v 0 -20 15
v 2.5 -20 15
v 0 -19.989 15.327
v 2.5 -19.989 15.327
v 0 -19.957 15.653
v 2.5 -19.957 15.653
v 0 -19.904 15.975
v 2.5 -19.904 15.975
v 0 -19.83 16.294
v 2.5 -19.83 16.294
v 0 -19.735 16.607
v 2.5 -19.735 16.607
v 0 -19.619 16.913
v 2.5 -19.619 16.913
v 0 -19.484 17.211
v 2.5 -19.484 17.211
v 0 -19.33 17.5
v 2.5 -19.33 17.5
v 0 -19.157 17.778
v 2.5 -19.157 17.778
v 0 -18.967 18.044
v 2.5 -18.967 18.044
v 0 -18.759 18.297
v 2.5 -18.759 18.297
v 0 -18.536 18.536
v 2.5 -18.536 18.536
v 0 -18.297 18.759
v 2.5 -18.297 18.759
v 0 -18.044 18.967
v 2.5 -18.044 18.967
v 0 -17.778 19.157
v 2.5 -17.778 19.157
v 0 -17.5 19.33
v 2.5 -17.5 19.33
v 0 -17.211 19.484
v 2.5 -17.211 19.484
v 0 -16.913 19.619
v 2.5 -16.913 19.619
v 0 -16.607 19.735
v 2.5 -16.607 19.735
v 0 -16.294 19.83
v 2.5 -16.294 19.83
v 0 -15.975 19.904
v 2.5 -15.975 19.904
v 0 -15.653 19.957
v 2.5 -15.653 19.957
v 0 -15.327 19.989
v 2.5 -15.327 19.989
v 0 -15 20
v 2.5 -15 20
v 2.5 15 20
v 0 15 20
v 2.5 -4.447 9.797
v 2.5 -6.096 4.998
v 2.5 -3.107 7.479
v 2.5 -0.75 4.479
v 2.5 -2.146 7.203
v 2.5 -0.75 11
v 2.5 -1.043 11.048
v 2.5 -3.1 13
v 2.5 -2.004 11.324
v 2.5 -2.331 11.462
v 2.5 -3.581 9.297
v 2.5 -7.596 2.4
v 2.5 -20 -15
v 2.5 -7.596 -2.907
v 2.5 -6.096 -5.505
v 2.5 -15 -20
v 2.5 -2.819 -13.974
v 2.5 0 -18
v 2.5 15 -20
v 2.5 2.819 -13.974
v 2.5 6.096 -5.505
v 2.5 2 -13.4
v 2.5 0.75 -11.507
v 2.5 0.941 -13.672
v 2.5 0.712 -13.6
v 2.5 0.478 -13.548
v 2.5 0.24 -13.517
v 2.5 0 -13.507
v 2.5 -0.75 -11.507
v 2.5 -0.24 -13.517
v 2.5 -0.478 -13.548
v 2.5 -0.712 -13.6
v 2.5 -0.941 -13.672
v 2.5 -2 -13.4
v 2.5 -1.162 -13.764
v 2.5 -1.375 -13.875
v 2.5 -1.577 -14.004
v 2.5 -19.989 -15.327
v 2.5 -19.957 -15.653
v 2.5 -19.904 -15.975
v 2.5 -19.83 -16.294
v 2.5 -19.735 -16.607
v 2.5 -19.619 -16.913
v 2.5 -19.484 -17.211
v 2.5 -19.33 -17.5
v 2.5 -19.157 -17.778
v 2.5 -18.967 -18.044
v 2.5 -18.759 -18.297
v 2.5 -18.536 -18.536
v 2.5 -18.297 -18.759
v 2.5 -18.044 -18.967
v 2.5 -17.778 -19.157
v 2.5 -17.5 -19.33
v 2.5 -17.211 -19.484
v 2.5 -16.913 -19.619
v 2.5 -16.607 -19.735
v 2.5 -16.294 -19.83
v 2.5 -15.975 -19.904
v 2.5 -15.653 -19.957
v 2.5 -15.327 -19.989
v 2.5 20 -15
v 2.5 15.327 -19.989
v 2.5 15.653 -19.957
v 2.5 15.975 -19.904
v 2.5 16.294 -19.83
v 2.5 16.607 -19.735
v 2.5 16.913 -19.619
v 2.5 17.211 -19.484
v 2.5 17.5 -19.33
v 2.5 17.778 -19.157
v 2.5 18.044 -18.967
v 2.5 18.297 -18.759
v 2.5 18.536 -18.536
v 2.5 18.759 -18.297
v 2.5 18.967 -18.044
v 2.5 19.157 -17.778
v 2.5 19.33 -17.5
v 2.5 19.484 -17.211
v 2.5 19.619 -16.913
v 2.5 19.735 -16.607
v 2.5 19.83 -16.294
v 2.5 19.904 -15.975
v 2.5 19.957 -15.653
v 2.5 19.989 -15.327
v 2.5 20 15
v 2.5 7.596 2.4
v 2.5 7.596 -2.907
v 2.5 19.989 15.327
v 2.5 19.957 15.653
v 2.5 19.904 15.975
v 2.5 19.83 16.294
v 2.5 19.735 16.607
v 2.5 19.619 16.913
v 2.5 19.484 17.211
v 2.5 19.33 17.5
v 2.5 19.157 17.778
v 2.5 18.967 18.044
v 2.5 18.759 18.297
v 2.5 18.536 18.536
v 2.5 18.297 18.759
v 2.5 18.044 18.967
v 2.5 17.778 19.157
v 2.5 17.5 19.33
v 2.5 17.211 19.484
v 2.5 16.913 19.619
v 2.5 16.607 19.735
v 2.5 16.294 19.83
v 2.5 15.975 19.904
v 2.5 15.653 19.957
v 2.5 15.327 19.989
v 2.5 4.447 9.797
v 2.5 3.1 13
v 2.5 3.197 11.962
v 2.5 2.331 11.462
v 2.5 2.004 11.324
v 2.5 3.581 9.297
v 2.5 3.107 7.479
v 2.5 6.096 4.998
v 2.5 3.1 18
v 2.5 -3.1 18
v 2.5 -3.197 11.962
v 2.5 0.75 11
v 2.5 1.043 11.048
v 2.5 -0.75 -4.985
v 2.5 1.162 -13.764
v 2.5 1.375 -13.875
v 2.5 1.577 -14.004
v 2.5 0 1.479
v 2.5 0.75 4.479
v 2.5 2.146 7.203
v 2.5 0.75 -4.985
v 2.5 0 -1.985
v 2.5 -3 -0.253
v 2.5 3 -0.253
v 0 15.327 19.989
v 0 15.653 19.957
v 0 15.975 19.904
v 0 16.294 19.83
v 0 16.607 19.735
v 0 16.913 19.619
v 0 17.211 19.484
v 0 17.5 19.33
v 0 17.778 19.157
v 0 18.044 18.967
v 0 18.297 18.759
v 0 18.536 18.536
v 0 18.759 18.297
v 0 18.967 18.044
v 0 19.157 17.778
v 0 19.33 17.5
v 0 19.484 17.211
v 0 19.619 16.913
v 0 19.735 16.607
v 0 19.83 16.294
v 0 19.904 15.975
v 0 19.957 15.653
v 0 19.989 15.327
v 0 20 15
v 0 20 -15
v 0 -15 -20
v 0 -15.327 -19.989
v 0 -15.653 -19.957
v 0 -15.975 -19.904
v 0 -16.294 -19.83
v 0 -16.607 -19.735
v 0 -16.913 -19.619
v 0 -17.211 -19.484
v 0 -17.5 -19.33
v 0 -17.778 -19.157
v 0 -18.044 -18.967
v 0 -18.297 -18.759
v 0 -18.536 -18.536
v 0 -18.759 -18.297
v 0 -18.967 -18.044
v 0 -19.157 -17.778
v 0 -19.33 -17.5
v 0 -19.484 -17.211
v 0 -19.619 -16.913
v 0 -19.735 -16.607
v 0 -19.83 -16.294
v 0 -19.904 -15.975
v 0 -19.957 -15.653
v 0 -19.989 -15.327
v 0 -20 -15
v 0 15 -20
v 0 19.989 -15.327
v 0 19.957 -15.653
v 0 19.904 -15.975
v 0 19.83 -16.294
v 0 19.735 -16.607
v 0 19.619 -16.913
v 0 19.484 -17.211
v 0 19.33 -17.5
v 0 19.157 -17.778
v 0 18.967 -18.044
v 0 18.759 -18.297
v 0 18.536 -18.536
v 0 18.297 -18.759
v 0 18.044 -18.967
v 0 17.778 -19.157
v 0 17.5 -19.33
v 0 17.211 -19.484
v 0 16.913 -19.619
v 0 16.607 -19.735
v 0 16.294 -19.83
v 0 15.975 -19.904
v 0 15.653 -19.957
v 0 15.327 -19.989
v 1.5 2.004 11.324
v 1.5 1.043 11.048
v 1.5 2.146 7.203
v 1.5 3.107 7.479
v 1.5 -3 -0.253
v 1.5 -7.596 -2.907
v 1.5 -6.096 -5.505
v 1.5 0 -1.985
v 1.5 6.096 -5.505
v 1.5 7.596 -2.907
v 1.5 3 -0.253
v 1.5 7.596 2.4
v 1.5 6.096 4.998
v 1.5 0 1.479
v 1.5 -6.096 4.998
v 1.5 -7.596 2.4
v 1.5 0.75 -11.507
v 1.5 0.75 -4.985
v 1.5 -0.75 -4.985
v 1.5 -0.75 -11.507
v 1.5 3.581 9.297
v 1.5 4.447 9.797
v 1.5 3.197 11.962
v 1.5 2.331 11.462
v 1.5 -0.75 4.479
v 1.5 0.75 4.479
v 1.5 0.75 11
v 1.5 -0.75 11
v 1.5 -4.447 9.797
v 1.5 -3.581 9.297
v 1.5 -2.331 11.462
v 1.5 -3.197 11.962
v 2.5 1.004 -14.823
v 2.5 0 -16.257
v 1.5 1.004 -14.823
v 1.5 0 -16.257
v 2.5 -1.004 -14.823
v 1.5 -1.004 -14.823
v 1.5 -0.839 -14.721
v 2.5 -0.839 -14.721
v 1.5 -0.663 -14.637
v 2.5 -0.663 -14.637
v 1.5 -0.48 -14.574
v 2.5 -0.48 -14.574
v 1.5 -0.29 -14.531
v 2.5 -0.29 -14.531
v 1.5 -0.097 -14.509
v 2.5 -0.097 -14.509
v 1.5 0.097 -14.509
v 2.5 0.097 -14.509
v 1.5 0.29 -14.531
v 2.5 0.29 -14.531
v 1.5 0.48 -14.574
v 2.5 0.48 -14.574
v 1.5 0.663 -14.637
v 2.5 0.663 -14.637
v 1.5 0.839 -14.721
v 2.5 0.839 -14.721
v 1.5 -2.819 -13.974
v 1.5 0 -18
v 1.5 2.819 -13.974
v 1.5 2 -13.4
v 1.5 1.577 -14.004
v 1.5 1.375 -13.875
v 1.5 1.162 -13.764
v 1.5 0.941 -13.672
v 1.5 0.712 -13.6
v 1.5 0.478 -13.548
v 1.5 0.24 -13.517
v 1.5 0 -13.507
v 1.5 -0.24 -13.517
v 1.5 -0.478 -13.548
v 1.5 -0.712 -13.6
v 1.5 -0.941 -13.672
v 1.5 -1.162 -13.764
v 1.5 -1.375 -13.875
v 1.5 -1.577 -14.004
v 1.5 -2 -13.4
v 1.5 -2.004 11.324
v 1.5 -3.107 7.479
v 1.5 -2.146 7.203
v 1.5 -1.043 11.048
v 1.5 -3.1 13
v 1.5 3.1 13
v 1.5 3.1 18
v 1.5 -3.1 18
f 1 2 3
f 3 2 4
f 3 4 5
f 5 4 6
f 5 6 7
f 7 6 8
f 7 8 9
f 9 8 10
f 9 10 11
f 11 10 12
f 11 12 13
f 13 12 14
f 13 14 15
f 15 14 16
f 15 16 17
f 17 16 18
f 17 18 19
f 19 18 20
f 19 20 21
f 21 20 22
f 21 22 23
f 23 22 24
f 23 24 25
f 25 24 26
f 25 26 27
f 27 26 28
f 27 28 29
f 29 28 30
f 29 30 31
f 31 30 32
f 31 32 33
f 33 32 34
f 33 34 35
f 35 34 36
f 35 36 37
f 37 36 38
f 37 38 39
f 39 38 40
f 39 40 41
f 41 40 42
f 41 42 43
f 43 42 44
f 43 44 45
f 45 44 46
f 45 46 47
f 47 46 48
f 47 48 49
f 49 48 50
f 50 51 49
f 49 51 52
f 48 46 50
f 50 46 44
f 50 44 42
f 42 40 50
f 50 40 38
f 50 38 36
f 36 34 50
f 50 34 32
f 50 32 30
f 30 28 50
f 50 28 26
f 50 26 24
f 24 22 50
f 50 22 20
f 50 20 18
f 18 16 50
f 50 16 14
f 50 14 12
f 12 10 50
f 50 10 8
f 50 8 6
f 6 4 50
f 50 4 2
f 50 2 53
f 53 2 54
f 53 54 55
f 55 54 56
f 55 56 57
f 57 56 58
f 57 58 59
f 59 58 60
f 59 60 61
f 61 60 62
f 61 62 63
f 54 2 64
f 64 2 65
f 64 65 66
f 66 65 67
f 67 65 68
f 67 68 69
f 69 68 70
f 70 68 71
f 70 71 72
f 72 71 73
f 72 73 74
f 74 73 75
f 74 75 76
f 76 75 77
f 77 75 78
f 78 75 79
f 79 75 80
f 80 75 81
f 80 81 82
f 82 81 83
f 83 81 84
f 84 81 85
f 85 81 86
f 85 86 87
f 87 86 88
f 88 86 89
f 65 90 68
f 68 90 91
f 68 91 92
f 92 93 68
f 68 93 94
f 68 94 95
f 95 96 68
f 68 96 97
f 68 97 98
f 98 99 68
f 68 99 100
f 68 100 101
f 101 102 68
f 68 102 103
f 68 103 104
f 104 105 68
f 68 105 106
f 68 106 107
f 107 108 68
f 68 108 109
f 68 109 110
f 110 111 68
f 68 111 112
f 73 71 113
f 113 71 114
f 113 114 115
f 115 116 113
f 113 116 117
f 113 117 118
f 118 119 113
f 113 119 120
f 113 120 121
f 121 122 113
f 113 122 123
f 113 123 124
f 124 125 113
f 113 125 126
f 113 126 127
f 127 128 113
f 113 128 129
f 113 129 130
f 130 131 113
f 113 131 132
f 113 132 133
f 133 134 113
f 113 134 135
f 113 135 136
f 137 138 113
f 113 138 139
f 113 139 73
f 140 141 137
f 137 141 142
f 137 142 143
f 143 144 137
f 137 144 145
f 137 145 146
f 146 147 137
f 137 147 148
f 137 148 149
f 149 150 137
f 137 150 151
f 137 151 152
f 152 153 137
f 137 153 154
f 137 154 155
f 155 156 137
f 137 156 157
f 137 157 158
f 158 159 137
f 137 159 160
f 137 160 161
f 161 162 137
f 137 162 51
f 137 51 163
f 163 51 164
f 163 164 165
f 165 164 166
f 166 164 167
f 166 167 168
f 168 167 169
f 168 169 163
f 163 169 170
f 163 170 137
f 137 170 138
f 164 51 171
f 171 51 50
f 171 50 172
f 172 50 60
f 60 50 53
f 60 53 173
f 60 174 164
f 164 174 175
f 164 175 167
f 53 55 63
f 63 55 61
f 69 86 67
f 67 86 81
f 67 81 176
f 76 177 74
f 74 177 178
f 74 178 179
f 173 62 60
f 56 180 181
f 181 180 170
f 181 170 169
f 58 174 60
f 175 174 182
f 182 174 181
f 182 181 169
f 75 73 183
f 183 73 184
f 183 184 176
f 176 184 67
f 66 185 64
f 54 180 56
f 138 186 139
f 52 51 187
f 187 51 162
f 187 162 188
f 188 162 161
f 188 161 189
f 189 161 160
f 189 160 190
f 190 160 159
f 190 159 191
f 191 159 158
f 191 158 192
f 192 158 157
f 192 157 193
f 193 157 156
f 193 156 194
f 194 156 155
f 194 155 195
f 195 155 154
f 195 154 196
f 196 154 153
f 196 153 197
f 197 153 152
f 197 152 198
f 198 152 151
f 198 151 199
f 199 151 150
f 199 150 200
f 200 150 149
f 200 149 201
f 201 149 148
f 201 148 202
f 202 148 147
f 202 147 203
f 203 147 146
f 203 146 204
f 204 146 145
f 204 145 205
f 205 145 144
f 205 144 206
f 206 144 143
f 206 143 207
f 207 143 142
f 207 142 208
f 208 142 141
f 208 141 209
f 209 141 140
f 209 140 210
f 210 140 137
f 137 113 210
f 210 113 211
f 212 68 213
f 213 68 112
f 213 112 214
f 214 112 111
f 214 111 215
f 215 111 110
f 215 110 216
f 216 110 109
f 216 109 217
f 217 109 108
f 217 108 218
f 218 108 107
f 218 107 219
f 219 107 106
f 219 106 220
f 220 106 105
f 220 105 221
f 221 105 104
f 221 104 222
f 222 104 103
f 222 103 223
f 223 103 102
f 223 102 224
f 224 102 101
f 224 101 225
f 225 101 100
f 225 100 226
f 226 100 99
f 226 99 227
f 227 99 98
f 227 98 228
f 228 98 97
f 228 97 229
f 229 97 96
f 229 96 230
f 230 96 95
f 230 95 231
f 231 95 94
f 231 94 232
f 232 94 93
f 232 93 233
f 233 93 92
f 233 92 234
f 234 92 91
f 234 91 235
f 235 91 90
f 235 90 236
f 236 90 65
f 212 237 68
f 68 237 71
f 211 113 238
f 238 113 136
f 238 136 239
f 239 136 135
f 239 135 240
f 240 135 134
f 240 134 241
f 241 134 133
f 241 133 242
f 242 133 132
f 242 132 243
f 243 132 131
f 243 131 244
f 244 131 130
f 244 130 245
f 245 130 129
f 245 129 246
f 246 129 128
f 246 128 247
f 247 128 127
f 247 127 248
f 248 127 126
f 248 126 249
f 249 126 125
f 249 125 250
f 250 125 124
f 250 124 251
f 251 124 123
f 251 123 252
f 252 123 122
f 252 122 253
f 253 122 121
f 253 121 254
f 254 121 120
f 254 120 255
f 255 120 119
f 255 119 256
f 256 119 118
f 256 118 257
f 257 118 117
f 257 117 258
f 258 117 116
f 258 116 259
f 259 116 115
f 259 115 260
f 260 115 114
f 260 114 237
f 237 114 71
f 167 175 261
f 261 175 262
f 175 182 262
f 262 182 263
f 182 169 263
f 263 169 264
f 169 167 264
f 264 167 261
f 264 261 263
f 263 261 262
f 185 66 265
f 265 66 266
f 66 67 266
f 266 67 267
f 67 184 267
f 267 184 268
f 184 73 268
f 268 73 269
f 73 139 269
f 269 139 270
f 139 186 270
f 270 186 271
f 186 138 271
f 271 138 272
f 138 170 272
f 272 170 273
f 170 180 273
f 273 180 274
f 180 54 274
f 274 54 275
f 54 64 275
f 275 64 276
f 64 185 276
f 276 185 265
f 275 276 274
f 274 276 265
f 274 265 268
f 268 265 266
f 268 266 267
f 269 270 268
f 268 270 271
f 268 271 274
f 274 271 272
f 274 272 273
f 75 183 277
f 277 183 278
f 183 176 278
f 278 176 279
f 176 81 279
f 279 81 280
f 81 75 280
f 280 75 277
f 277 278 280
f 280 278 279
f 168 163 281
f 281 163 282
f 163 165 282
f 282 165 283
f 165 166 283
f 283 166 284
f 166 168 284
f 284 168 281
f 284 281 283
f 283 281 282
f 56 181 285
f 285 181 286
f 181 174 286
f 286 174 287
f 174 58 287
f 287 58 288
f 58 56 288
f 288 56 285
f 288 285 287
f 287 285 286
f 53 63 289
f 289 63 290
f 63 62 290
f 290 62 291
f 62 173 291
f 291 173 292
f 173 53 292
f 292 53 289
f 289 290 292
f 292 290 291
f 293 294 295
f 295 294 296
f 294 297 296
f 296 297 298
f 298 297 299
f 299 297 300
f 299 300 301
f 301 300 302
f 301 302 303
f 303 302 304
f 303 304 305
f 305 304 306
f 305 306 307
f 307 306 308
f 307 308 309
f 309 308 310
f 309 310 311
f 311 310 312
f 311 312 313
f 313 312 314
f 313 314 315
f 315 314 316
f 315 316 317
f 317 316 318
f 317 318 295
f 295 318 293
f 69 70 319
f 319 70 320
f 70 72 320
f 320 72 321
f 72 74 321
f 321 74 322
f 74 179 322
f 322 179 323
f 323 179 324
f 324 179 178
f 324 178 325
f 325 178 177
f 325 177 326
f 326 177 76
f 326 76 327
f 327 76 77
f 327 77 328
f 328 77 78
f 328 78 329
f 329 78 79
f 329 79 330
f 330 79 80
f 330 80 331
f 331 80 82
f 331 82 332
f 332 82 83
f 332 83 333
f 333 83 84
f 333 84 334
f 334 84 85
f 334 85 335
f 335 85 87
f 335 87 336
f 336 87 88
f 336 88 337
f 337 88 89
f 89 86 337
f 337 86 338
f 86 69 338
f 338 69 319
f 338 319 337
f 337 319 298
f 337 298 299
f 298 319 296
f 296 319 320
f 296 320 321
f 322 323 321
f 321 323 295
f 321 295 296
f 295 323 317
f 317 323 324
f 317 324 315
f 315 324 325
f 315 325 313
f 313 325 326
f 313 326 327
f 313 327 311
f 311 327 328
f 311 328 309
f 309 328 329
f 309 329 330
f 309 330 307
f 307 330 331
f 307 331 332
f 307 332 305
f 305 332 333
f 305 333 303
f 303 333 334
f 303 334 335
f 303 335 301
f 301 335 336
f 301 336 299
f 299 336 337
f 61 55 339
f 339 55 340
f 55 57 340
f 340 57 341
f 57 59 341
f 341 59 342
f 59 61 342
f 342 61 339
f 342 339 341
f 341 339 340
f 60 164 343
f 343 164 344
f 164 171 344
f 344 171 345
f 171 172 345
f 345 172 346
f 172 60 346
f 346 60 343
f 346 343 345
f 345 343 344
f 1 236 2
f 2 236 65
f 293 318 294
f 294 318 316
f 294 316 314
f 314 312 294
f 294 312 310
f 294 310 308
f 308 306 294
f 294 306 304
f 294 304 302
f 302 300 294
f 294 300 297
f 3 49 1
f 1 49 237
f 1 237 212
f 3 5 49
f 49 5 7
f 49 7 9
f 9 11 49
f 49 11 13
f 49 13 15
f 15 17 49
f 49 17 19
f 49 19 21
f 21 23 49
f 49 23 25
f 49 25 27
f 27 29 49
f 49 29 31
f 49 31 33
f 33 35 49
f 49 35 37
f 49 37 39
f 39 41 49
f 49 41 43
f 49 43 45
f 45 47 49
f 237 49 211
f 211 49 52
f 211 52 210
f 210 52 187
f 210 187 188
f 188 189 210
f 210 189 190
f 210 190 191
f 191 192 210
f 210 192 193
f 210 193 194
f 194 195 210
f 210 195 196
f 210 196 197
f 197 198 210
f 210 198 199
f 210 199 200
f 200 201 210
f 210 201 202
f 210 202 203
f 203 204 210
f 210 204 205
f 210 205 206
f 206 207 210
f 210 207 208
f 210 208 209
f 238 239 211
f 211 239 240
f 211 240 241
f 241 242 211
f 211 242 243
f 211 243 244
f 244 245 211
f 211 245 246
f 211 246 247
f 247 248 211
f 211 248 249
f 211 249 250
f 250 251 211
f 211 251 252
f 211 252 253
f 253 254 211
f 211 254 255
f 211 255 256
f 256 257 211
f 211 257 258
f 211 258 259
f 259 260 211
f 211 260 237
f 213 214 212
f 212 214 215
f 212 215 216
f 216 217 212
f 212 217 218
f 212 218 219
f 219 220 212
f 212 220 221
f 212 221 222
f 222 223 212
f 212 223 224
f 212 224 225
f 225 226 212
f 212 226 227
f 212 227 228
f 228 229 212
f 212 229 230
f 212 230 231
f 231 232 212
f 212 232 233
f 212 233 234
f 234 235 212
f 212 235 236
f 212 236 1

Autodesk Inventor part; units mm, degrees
ref_plane "YZ Plane" through (0, 0, 0) normal (1, 0, 0) x (0, 1, 0)
ref_plane "XZ Plane" through (0, 0, 0) normal (0, 1, 0) x (-1, 0, 0)
ref_plane "XY Plane" through (0, 0, 0) normal (0, 0, 1) x (1, 0, 0)
sketch "Sketch1" plane through (0, 0, 0) normal (1, 0, 0) x (0, 1, 0)
  line L0 (-20, -20) -> (20, -20)
  line L1 (20, -20) -> (20, 20)
  line L2 (20, 20) -> (-20, 20)
  line L3 (-20, 20) -> (-20, -20)
  line L4 (-20, -20) -> (20, 20) construction
  line L5 (20, -20) -> (-20, 20) construction
  point P0 (0, 0)
  dimension "d1" = 40
  dimension "d2" = 40
extrude "Outline" add sketch "Sketch1" along normal blind 2.5
sketch "Sketch2" plane through (2.5, 0, 0) normal (1, 0, 0) x (0, 0, -1)
  line L0 (20, 20) -> (-20, 20) projected
  line L1 (20, -20) -> (20, 20) projected
  line L2 (-18, 3.1) -> (-13, 3.1)
  line L3 (-13, 3.1) -> (-13, -3.1)
  line L4 (-13, -3.1) -> (-18, -3.1)
  line L5 (-18, -3.1) -> (-18, 3.1)
  line L6 (-11, 0.75) -> (-4.4788, 0.75)
  line L7 (-4.4788, 0.75) -> (-4.4788, -0.75)
  line L8 (-4.4788, -0.75) -> (-11, -0.75)
  line L9 (-11, -0.75) -> (-11, 0.75)
  line L10 (13.9738, 2.8192) -> (18, 0)
  line L11 (18, 0) -> (13.9738, -2.8192)
  line L12 (13.9738, 2.8192) -> (13.4003, 2)
  line L13 (13.4003, 2) -> (16.2566, 0)
  line L14 (16.2566, 0) -> (13.4003, -2)
  line L15 (13.4003, -2) -> (13.9738, -2.8192)
  line L16 (-18, 0) -> (16.2566, 0) construction
  arc A0 (14.0039, 1.5773) -> (14.0039, -1.5773) centre (16.2566, 0) ccw
  arc A1 (14.823, 1.0038) -> (14.823, -1.0038) centre (16.2566, 0) ccw
  line L17 (4.9853, 0.75) -> (11.5066, 0.75)
  line L18 (11.5066, 0.75) -> (11.5066, -0.75)
  line L19 (11.5066, -0.75) -> (4.9853, -0.75)
  line L20 (4.9853, -0.75) -> (4.9853, 0.75)
  line L21 (-11.3236, 2.0044) -> (-11.048, 1.0432)
  line L22 (-11.048, 1.0432) -> (-7.203, 2.1457)
  line L23 (-7.203, 2.1457) -> (-7.4786, 3.107)
  line L24 (-7.4786, 3.107) -> (-11.3236, 2.0044)
  line L25 (-11.048, -1.0432) -> (-7.203, -2.1457)
  line L26 (-7.203, -2.1457) -> (-7.4786, -3.107)
  line L27 (-7.4786, -3.107) -> (-11.3236, -2.0044)
  line L28 (-11.3236, -2.0044) -> (-11.048, -1.0432)
  circle A2 centre (-16.5, 0) radius 5.5509 construction
  line L29 (-11.9623, 3.1972) -> (-11.4623, 2.3312)
  line L30 (-11.4623, 2.3312) -> (-9.2973, 3.5812)
  line L31 (-9.2973, 3.5812) -> (-9.7973, 4.4472)
  line L32 (-9.7973, 4.4472) -> (-11.9623, 3.1972)
  line L33 (-11.4623, -2.3312) -> (-11.9623, -3.1972)
  line L34 (-11.9623, -3.1972) -> (-9.7973, -4.4472)
  line L35 (-9.7973, -4.4472) -> (-9.2973, -3.5812)
  line L36 (-9.2973, -3.5812) -> (-11.4623, -2.3312)
  line L37 (-4.9984, 6.0961) -> (-2.4003, 7.5961)
  line L38 (-2.4003, 7.5961) -> (5.5049, -6.0961)
  line L39 (5.5049, -6.0961) -> (2.9068, -7.5961)
  line L40 (2.9068, -7.5961) -> (-4.9984, 6.0961)
  line L41 (-4.9984, -6.0961) -> (2.9068, 7.5961)
  line L42 (2.9068, 7.5961) -> (5.5049, 6.0961)
  line L43 (5.5049, 6.0961) -> (-2.4003, -7.5961)
  line L44 (-2.4003, -7.5961) -> (-4.9984, -6.0961)
  line L45 (-4.9984, 7.5961) -> (5.5049, 7.5961) construction
  line L46 (5.5049, 7.5961) -> (5.5049, -7.5961) construction
  line L47 (5.5049, -7.5961) -> (-4.9984, -7.5961) construction
  line L48 (-4.9984, -7.5961) -> (-4.9984, 7.5961) construction
  line L49 (-20, -20) -> (20, -20) projected
  line L50 (-20, 20) -> (-20, -20) projected
  line L51 (-4.9984, 6.0961) -> (-11, 6.0961) construction
  line L52 (5.5049, 6.0961) -> (11.5066, 6.0961) construction
  point P0 (0, 0)
  point P1 (-13, 0)
  point P2 (-11, 0)
  point P3 (13.5066, 0)
  point P4 (-1.0458, 0.75)
  point P5 (1.5523, 0.75)
  point P6 (0.2533, -7.5961)
  point P7 (11.5066, 0)
  point P8 (5.5049, 0)
  point P9 (4.9853, 0)
  point P10 (-1.4788, 0)
  point P11 (0.2533, -3)
  point P12 (1.9853, 0)
  point P13 (0.2533, 3)
  point P14 (20, 0)
  dimension "d12" = 35
  dimension "d13" = 35
  dimension "d14" = 4
  dimension "d15" = 1
  dimension "d16" = 1
  dimension "d17" = 2.75
  dimension "d18" = 1.5
  dimension "d19" = 2
  dimension "d21" = 5
  dimension "d22" = 2
  dimension "d23" = 1
  dimension "d24" = 1
  dimension "d25" = 3.5
  dimension "d26" = 16
  dimension "d27" = 16
  dimension "d28" = 4
  dimension "d29" = 2.5
  dimension "d30" = 1
  dimension "d31" = 14
  dimension "d32" = 14
  dimension "d33" = 1
  dimension "d34" = 2.5
  dimension "d35" = 6.2
  dimension "d36" = 60
  dimension "d37" = 60
  dimension "d38" = 3
  dimension "d40" = 2
  dimension "d41" = 2
  dimension "d42" = 3
  dimension "d45" = 15.1922
extrude "Extrusion2" cut sketch "Sketch2" against normal blind 1 contours L2 L3 L4 L5 | L6 L7 L8 L9 | L10 L11 L15 L14 L13 L12 | L13 A1 L14 A0 | L17 L18 L19 L20 | L24 L23 L22 L21 | L25 L26 L27 L28 | L32 L31 L30 L29 | L36 L35 L34 L33 | L37 L38 L41 L40 | L41 L38 L43 L40 | L40 L43 L44 L41 | L41 L42 L43 L38 | L43 L38 L39 L40
sketch "Sketch4" plane through (1.5, 0, 0) normal (1, 0, 0) x (0, 0, -1)
  line L0 (-11.3236, 2.0044) -> (-11.048, 1.0432) projected
  line L1 (-11.048, 1.0432) -> (-7.203, 2.1457) projected
  line L2 (-7.203, 2.1457) -> (-7.4786, 3.107) projected
  line L3 (-7.4786, 3.107) -> (-11.3236, 2.0044) projected
  line L4 (0.2533, -3) -> (2.9068, -7.5961) projected
  line L5 (2.9068, -7.5961) -> (5.5049, -6.0961) projected
  line L6 (5.5049, -6.0961) -> (1.9853, 0) projected
  line L7 (1.9853, 0) -> (5.5049, 6.0961) projected
  line L8 (5.5049, 6.0961) -> (2.9068, 7.5961) projected
  line L9 (2.9068, 7.5961) -> (0.2533, 3) projected
  line L10 (0.2533, 3) -> (-2.4003, 7.5961) projected
  line L11 (-2.4003, 7.5961) -> (-4.9984, 6.0961) projected
  line L12 (-4.9984, 6.0961) -> (-1.4788, 0) projected
  line L13 (-1.4788, 0) -> (-4.9984, -6.0961) projected
  line L14 (-4.9984, -6.0961) -> (-2.4003, -7.5961) projected
  line L15 (-2.4003, -7.5961) -> (0.2533, -3) projected
  line L16 (11.5066, 0.75) -> (4.9853, 0.75) projected
  line L17 (4.9853, 0.75) -> (4.9853, -0.75) projected
  line L18 (4.9853, -0.75) -> (11.5066, -0.75) projected
  line L19 (11.5066, -0.75) -> (11.5066, 0.75) projected
  line L20 (-9.2973, 3.5812) -> (-9.7973, 4.4472) projected
  line L21 (-9.7973, 4.4472) -> (-11.9623, 3.1972) projected
  line L22 (-11.9623, 3.1972) -> (-11.4623, 2.3312) projected
  line L23 (-11.4623, 2.3312) -> (-9.2973, 3.5812) projected
  line L24 (-4.4788, -0.75) -> (-4.4788, 0.75) projected
  line L25 (-4.4788, 0.75) -> (-11, 0.75) projected
  line L26 (-11, 0.75) -> (-11, -0.75) projected
  line L27 (-11, -0.75) -> (-4.4788, -0.75) projected
  line L28 (-9.7973, -4.4472) -> (-9.2973, -3.5812) projected
  line L29 (-9.2973, -3.5812) -> (-11.4623, -2.3312) projected
  line L30 (-11.4623, -2.3312) -> (-11.9623, -3.1972) projected
  line L31 (-11.9623, -3.1972) -> (-9.7973, -4.4472) projected
  line L32 (14.823, 1.0038) -> (16.2566, 0) projected
  line L33 (16.2566, 0) -> (14.823, -1.0038) projected
  arc A0 (14.823, 1.0038) -> (14.823, -1.0038) centre (16.2566, 0) ccw projected
  line L34 (13.9738, -2.8192) -> (18, 0) projected
  line L35 (18, 0) -> (13.9738, 2.8192) projected
  line L36 (13.9738, 2.8192) -> (13.4003, 2) projected
  line L37 (13.4003, 2) -> (14.0039, 1.5773) projected
  arc A1 (14.0039, 1.5773) -> (14.0039, -1.5773) centre (16.2566, 0) ccw projected
  line L38 (14.0039, -1.5773) -> (13.4003, -2) projected
  line L39 (13.4003, -2) -> (13.9738, -2.8192) projected
  line L40 (-11.3236, -2.0044) -> (-7.4786, -3.107) projected
  line L41 (-7.4786, -3.107) -> (-7.203, -2.1457) projected
  line L42 (-7.203, -2.1457) -> (-11.048, -1.0432) projected
  line L43 (-11.048, -1.0432) -> (-11.3236, -2.0044) projected
  line L44 (-13, -3.1) -> (-13, 3.1) projected
  line L45 (-13, 3.1) -> (-18, 3.1) projected
  line L46 (-18, 3.1) -> (-18, -3.1) projected
  line L47 (-18, -3.1) -> (-13, -3.1) projected
  line L48 (20, 20) -> (20, -20) projected
  line L49 (20, -20) -> (-20, -20) projected
  line L50 (-20, -20) -> (-20, 20) projected
  line L51 (-20, 20) -> (20, 20) projected
  point P0 (0, 0)
fillet "Fillet1" radius 5 4 edges at (1.25, 20, -20) (1.25, -20, -20) (1.25, 20, 20) (1.25, -20, 20)
sketch "Sketch5" plane through (2.5, 0, 0) normal (1, 0, 0) x (0, 0, -1)
  arc A0 (-20, -15) -> (-15, -20) centre (-15, -15) ccw projected
  line L0 (-20, -15) -> (-20, 15) projected
  arc A1 (-15, 20) -> (-20, 15) centre (-15, 15) ccw projected
  line L1 (-15, 20) -> (15, 20) projected
  arc A2 (20, 15) -> (15, 20) centre (15, 15) ccw projected
  line L2 (20, 15) -> (20, -15) projected
  arc A3 (15, -20) -> (20, -15) centre (15, -15) ccw projected
  line L3 (15, -20) -> (-15, -20) projected
  line L4 (-13, -3.1) -> (-13, 3.1) projected
  line L5 (-13, 3.1) -> (-18, 3.1) projected
  line L6 (-18, 3.1) -> (-18, -3.1) projected
  line L7 (-18, -3.1) -> (-13, -3.1) projected
  line L8 (-11.3236, -2.0044) -> (-7.4786, -3.107) projected
  line L9 (-7.4786, -3.107) -> (-7.203, -2.1457) projected
  line L10 (-7.203, -2.1457) -> (-11.048, -1.0432) projected
  line L11 (-11.048, -1.0432) -> (-11.3236, -2.0044) projected
  line L12 (13.9738, -2.8192) -> (18, 0) projected
  line L13 (18, 0) -> (13.9738, 2.8192) projected
  line L14 (13.9738, 2.8192) -> (13.4003, 2) projected
  line L15 (13.4003, 2) -> (14.0039, 1.5773) projected
  arc A4 (14.0039, 1.5773) -> (14.0039, -1.5773) centre (16.2566, 0) ccw projected
  line L16 (14.0039, -1.5773) -> (13.4003, -2) projected
  line L17 (13.4003, -2) -> (13.9738, -2.8192) projected
  line L18 (-9.7973, -4.4472) -> (-9.2973, -3.5812) projected
  line L19 (-9.2973, -3.5812) -> (-11.4623, -2.3312) projected
  line L20 (-11.4623, -2.3312) -> (-11.9623, -3.1972) projected
  line L21 (-11.9623, -3.1972) -> (-9.7973, -4.4472) projected
  line L22 (-4.4788, -0.75) -> (-4.4788, 0.75) projected
  line L23 (-4.4788, 0.75) -> (-11, 0.75) projected
  line L24 (-11, 0.75) -> (-11, -0.75) projected
  line L25 (-11, -0.75) -> (-4.4788, -0.75) projected
  line L26 (-9.2973, 3.5812) -> (-9.7973, 4.4472) projected
  line L27 (-9.7973, 4.4472) -> (-11.9623, 3.1972) projected
  line L28 (-11.9623, 3.1972) -> (-11.4623, 2.3312) projected
  line L29 (-11.4623, 2.3312) -> (-9.2973, 3.5812) projected
  line L30 (11.5066, 0.75) -> (4.9853, 0.75) projected
  line L31 (4.9853, 0.75) -> (4.9853, -0.75) projected
  line L32 (4.9853, -0.75) -> (11.5066, -0.75) projected
  line L33 (11.5066, -0.75) -> (11.5066, 0.75) projected
  line L34 (0.2533, -3) -> (2.9068, -7.5961) projected
  line L35 (2.9068, -7.5961) -> (5.5049, -6.0961) projected
  line L36 (5.5049, -6.0961) -> (1.9853, 0) projected
  line L37 (1.9853, 0) -> (5.5049, 6.0961) projected
  line L38 (5.5049, 6.0961) -> (2.9068, 7.5961) projected
  line L39 (2.9068, 7.5961) -> (0.2533, 3) projected
  line L40 (0.2533, 3) -> (-2.4003, 7.5961) projected
  line L41 (-2.4003, 7.5961) -> (-4.9984, 6.0961) projected
  line L42 (-4.9984, 6.0961) -> (-1.4788, 0) projected
  line L43 (-1.4788, 0) -> (-4.9984, -6.0961) projected
  line L44 (-4.9984, -6.0961) -> (-2.4003, -7.5961) projected
  line L45 (-2.4003, -7.5961) -> (0.2533, -3) projected
  line L46 (-11.3236, 2.0044) -> (-11.048, 1.0432) projected
  line L47 (-11.048, 1.0432) -> (-7.203, 2.1457) projected
  line L48 (-7.203, 2.1457) -> (-7.4786, 3.107) projected
  line L49 (-7.4786, 3.107) -> (-11.3236, 2.0044) projected
  line L50 (14.823, 1.0038) -> (16.2566, 0) projected
  line L51 (16.2566, 0) -> (14.823, -1.0038) projected
  arc A5 (14.823, 1.0038) -> (14.823, -1.0038) centre (16.2566, 0) ccw projected
  point P0 (0, 0)
properties part number "LightGateCard_3DPrint"
